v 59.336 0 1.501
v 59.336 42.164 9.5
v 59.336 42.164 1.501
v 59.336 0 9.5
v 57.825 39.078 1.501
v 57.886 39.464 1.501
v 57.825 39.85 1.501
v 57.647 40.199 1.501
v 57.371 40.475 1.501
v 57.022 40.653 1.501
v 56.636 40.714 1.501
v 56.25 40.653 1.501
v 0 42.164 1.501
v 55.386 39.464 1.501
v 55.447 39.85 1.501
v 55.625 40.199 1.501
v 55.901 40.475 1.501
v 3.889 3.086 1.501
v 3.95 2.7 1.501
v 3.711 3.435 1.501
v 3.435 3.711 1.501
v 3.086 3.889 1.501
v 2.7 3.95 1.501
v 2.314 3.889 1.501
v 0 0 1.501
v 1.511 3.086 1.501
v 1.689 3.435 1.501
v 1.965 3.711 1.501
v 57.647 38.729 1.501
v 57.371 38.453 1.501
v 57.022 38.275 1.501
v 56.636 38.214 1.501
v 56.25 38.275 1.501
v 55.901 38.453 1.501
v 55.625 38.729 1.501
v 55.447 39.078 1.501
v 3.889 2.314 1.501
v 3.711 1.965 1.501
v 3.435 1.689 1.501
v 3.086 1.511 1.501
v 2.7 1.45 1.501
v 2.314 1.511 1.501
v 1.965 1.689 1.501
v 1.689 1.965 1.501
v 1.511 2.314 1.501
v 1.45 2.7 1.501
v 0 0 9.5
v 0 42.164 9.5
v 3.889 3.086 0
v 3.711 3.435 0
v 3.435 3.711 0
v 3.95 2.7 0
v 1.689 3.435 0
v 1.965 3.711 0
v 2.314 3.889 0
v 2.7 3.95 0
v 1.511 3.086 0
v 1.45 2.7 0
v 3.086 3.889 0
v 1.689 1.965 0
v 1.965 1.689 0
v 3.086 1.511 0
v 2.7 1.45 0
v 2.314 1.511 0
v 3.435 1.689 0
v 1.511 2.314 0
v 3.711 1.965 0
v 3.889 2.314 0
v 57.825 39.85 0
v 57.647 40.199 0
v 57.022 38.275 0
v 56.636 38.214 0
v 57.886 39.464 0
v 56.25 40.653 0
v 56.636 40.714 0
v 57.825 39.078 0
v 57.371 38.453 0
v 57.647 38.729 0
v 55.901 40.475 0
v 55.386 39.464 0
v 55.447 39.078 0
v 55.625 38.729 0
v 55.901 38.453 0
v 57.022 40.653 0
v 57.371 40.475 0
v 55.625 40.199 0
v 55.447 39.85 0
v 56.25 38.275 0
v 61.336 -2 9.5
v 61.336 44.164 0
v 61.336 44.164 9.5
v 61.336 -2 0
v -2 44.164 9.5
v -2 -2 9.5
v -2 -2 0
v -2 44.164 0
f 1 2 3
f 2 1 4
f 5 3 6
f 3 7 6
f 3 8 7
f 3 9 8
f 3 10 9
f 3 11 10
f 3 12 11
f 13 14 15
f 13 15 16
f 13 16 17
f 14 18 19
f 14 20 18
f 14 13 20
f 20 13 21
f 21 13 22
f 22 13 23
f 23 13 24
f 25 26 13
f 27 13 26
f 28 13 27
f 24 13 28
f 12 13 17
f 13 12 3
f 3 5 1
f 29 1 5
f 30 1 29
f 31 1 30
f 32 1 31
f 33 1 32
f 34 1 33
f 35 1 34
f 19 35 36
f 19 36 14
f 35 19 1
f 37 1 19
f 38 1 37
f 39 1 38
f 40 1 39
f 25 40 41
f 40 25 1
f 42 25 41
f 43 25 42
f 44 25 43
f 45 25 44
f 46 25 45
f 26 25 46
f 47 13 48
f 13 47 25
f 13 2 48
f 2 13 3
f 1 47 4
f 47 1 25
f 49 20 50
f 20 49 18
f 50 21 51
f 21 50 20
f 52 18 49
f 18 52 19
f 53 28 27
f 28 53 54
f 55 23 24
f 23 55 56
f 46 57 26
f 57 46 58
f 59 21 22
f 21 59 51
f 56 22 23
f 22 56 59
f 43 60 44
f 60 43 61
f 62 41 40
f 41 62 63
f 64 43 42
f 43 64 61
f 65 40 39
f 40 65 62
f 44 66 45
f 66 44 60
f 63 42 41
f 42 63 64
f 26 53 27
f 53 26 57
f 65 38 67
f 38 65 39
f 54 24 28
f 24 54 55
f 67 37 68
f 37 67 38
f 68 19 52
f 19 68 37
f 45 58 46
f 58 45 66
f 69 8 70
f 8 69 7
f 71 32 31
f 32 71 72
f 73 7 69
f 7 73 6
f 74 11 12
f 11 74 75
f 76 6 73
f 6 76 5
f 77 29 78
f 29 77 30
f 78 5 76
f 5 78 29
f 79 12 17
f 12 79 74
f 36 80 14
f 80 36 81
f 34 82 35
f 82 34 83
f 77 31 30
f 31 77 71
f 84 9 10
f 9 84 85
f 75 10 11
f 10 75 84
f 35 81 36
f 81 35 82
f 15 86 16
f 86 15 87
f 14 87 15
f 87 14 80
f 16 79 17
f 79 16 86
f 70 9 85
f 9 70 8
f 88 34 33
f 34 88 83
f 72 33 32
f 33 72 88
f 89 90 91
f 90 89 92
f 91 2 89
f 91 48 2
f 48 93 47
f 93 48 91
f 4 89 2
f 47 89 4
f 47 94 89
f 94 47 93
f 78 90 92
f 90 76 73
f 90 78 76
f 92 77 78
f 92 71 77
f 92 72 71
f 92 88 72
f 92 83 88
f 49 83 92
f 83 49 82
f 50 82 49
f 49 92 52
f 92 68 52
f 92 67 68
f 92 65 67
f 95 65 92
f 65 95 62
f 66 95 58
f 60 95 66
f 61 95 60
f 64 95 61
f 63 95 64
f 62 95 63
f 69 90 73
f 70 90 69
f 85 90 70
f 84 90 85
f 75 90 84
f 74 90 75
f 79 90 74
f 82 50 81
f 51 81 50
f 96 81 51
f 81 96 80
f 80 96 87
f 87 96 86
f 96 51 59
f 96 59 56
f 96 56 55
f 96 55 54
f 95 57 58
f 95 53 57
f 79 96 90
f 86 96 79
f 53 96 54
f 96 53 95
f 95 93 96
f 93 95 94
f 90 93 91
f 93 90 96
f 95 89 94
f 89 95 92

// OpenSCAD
// Copyright (c) 2026 Chris Lee and contributors.
// Licensed under the MIT license. See LICENSE file in the project root for details.

// This is a fixture for drilling missing screw holes in latest PCB.
board_thickness = 1.6;
pad_space = 2.54;
num_boards = 5;
board_dims = [23.4*pad_space-0.1, 16.6*pad_space, board_thickness * num_boards];

outside_border = 2;


base_thickness = 1.5;

outside_dims = board_dims + [2*outside_border, 2*outside_border, base_thickness];

if (false) {
  translate([board_dims[0]/2, board_dims[1]/2, board_dims[2]/2 + base_thickness]) color("white")
    import(file="Plant1337.stl", convexity=3);
 }

dscrew = 2.5;
screw_offset = dscrew + 0.2;

translate([-outside_border, -outside_border, 0]) {
  difference() {
    cube(outside_dims);
    translate([outside_border, outside_border, base_thickness+0.001]) {
      cube(board_dims);
      $fn = 20;
      translate([screw_offset, screw_offset, -2]) cylinder(5, dscrew/2, dscrew/2);
      translate([board_dims[0] - screw_offset, board_dims[1] - screw_offset, -2])
	cylinder(5, dscrew/2, dscrew/2);
    }
  }
}
